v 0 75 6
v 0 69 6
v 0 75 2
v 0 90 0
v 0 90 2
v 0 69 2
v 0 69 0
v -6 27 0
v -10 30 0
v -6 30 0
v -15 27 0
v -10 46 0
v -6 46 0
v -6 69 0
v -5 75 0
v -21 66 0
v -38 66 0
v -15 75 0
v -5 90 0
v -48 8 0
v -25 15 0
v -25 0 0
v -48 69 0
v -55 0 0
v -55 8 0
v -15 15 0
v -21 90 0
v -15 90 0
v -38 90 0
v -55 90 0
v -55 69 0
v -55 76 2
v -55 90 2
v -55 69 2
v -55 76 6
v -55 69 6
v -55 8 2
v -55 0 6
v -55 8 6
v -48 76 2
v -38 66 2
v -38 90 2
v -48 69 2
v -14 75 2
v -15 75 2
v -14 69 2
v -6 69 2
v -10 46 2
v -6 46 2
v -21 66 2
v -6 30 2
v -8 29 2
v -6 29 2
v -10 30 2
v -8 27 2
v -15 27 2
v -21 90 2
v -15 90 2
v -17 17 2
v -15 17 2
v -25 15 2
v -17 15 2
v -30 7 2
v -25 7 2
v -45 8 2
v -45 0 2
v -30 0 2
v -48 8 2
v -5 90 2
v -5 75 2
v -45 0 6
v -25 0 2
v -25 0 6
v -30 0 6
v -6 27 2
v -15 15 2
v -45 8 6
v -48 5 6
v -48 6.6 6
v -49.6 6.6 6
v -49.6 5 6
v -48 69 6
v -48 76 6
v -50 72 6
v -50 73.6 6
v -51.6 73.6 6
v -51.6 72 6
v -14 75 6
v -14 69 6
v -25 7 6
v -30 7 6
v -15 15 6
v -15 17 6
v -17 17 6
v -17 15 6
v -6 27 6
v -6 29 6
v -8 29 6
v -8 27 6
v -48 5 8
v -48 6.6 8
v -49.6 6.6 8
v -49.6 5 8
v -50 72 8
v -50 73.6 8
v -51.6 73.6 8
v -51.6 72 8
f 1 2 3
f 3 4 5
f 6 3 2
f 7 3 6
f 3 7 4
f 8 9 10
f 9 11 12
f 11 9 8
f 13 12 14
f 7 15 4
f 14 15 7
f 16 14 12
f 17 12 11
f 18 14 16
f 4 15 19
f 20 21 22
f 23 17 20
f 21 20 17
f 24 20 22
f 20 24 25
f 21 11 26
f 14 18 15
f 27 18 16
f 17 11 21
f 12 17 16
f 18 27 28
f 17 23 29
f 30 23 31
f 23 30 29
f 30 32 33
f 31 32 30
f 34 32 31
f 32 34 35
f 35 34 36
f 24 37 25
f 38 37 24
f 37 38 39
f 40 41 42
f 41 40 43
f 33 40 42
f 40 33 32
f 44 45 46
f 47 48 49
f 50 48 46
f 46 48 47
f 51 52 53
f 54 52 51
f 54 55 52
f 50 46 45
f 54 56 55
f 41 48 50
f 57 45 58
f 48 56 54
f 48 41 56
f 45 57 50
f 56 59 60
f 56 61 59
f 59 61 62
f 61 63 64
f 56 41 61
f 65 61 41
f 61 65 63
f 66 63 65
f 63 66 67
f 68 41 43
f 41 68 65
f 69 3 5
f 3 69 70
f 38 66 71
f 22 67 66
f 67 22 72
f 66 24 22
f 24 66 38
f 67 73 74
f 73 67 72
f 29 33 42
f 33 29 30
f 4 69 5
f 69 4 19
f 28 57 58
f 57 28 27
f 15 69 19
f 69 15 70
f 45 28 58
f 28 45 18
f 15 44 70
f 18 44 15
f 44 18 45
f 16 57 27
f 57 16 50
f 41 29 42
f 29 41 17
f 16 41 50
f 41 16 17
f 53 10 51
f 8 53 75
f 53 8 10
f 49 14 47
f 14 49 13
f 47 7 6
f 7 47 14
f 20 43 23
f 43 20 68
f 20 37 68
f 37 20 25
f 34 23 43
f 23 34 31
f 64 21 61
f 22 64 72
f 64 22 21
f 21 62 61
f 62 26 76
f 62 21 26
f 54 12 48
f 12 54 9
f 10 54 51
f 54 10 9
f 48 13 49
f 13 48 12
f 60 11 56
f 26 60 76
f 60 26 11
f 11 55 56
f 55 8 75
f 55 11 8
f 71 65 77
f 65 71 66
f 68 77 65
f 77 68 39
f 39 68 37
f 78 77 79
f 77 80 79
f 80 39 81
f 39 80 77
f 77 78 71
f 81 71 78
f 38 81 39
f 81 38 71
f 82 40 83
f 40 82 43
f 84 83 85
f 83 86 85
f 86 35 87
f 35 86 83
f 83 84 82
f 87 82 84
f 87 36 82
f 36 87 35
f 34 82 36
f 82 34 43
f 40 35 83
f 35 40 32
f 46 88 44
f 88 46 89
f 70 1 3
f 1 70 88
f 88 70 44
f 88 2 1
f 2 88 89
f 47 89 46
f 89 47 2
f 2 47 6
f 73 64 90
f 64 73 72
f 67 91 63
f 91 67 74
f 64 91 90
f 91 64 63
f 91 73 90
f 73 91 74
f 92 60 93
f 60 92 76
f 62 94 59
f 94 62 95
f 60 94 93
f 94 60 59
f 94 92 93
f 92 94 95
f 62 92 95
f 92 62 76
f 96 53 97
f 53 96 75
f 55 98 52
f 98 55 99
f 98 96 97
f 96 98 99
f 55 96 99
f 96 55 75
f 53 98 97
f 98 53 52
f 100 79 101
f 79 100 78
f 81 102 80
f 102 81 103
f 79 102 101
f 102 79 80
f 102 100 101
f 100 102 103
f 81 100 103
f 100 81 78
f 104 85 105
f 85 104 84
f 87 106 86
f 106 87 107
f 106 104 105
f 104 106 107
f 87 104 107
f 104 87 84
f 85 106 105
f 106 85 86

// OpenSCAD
rotate([0,180,0]) translate([0,0,-8]) {
    translate([0,0,2]) {
        difference() {
            translate([0,0,4]) cube([55,90,2]);
            translate([5, 75, 0]) cube([10,15,10]);
            translate([21, 66, 0]) cube([17,24,10]);
            translate([0,8,0]) cube([6,61,10]);
            translate([48,8,0]) cube([7,61,10]);
            translate([10,0,0]) cube([15,15,10]);
            translate([0,30,0]) cube([10,16,10]);
            translate([0,0,0]) cube([15,27,10]);
        };

        translate([45,0,0]) cube([10,8,4]);
        translate([48,69,0]) cube([7,7,4]);
        translate([0,69,0]) cube([14,6,4]);
        translate([25,0,0]) cube([5,7,4]);
        translate([15,15,0]) cube([2,2,4]);
        translate([6,27,0]) cube([2,2,4]);

    };

    translate([48,5,0]) cube([1.6,1.6,2]);
    translate([50,72,0]) cube([1.6,1.6,2]);
};
